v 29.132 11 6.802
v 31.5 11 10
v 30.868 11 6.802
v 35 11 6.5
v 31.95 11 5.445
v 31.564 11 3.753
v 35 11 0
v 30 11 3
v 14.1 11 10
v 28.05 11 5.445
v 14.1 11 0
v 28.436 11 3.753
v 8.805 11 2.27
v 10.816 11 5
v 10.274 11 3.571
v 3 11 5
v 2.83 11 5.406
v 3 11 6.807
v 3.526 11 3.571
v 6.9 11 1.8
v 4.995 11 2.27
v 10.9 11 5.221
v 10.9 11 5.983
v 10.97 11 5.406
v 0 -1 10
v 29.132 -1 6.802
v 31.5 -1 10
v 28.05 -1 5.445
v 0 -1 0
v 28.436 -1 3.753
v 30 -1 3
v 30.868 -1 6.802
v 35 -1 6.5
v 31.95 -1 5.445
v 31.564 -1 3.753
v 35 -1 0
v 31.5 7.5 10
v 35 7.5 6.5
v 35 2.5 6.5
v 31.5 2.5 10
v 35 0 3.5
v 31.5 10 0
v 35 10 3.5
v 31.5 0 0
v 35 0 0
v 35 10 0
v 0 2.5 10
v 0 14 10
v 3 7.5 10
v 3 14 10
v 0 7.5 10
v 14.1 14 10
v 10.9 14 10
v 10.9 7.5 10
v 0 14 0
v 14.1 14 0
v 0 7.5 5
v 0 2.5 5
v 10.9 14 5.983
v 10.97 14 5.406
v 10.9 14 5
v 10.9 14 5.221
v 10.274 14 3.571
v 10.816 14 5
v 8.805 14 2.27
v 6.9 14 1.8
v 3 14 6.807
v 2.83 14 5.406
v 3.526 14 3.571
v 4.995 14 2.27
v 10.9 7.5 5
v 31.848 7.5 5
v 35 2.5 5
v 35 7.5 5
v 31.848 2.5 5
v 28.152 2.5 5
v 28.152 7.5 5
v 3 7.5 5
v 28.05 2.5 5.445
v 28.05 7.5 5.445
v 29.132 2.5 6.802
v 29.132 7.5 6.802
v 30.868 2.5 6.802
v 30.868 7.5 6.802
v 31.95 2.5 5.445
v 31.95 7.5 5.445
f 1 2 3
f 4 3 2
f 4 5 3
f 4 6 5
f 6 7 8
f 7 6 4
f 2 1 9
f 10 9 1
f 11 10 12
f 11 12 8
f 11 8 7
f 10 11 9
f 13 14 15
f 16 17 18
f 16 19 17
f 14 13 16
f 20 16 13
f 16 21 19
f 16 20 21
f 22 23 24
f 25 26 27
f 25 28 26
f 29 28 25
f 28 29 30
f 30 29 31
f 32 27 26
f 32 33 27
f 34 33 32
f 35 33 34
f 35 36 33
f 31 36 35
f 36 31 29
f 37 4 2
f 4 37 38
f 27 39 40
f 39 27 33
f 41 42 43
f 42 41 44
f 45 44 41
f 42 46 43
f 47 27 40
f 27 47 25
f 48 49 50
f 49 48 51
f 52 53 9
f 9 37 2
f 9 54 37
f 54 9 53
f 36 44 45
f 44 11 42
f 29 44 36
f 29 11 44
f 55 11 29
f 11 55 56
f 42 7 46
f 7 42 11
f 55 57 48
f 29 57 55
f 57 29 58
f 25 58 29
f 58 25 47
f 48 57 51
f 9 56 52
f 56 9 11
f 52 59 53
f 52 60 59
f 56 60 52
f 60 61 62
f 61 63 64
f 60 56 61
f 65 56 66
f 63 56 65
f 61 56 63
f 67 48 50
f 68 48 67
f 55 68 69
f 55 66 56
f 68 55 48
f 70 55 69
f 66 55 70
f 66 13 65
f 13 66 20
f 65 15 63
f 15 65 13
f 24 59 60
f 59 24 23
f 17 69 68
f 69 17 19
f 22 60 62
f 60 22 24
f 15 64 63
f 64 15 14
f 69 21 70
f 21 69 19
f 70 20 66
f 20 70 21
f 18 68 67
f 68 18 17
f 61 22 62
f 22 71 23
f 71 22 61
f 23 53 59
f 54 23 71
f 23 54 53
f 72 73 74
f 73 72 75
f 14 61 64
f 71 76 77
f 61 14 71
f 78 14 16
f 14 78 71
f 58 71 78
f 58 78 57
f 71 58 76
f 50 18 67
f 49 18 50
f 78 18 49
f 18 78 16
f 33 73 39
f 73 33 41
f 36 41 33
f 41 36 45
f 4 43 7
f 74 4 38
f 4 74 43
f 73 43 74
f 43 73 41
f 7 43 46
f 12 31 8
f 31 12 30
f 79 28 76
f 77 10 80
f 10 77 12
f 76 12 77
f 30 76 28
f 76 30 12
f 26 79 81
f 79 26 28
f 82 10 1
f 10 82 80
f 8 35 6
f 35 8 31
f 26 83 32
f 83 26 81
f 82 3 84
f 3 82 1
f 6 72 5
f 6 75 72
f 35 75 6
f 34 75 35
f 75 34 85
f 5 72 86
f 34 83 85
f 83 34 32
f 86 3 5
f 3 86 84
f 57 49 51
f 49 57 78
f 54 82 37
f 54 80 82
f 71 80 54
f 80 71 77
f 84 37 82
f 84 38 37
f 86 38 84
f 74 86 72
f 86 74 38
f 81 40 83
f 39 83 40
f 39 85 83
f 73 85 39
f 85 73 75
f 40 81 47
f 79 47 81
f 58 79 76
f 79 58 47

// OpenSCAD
/*
Erica Umlor Wire Following Sensor Holder for MSE4777

Created: 04/16/2020
Description: This is for my GrowBot project
for senior design. This is the left end to the wire 
following sensor holders. This end has a slot for 
the inductor to sit in. Don't try to edit this code.
Most of it is not parametric, and it should fit just
fine with this this project. 
*/

sensorEndL();

// values
holeL = 15;    // length of pin hole
holeR = 2;     // pin hole radius
brace = 4;     // width 
w = 10;        // height and length
h1 = 35;       // length of inductor end
h2 = 25;       // length of inductor slot
depth = 4.1;   // depth of inductor slot
width = depth; // depth of inductor slot 
more = 2;

module sensorEndL() {
    translate([0,0,10]) {
      rotate([0,90,0]) {
        union() {
          translate([0,22,00]) {
            difference() {  
              // right inductor pocket
              rotate([90,0,0]) 
              translate([0,0,8])  
              cube([w,w+width,h2/8]);  

              // pocket slot hole
              rotate([90,0,0])
              translate([width,6.9,0])  
              cylinder(h2/2,width,width); 
                
              // inductor slot
              translate([0,-15,3])
              cube([5,30,8.8+width-5]);
            } 
          }        
          difference() {       
            // main body
            translate([0,-more/2,0])
            cube([w,w+more,h1]);
    
            // top hole
            translate([w/2,-20,h1-w/2])
            rotate([-90,0,0])
            cylinder(holeL*4,holeR,holeR);
        
            // wire slot
            translate([0,w/4,0])
            cube([w/2,w/2,h1]);
         
            // inductor cutout
            translate([0,5,3])
            cube([5,30,8.8+width-5]);
             
            rotate([0,0,270]){
              translate([-w,0,0]) {
                // chamfer top
                translate([-more/2,-w/4,h1-w/2-1])
                rotate([45,0,0])
                cube([w+more,w,w]);

                // chamfer bottom
                translate([0,w*5/4,h1-w/2-1])
                rotate([45,0,0])
                cube([w,w,w]);
              }
            }
          }
        }    
      }   
    }
}
